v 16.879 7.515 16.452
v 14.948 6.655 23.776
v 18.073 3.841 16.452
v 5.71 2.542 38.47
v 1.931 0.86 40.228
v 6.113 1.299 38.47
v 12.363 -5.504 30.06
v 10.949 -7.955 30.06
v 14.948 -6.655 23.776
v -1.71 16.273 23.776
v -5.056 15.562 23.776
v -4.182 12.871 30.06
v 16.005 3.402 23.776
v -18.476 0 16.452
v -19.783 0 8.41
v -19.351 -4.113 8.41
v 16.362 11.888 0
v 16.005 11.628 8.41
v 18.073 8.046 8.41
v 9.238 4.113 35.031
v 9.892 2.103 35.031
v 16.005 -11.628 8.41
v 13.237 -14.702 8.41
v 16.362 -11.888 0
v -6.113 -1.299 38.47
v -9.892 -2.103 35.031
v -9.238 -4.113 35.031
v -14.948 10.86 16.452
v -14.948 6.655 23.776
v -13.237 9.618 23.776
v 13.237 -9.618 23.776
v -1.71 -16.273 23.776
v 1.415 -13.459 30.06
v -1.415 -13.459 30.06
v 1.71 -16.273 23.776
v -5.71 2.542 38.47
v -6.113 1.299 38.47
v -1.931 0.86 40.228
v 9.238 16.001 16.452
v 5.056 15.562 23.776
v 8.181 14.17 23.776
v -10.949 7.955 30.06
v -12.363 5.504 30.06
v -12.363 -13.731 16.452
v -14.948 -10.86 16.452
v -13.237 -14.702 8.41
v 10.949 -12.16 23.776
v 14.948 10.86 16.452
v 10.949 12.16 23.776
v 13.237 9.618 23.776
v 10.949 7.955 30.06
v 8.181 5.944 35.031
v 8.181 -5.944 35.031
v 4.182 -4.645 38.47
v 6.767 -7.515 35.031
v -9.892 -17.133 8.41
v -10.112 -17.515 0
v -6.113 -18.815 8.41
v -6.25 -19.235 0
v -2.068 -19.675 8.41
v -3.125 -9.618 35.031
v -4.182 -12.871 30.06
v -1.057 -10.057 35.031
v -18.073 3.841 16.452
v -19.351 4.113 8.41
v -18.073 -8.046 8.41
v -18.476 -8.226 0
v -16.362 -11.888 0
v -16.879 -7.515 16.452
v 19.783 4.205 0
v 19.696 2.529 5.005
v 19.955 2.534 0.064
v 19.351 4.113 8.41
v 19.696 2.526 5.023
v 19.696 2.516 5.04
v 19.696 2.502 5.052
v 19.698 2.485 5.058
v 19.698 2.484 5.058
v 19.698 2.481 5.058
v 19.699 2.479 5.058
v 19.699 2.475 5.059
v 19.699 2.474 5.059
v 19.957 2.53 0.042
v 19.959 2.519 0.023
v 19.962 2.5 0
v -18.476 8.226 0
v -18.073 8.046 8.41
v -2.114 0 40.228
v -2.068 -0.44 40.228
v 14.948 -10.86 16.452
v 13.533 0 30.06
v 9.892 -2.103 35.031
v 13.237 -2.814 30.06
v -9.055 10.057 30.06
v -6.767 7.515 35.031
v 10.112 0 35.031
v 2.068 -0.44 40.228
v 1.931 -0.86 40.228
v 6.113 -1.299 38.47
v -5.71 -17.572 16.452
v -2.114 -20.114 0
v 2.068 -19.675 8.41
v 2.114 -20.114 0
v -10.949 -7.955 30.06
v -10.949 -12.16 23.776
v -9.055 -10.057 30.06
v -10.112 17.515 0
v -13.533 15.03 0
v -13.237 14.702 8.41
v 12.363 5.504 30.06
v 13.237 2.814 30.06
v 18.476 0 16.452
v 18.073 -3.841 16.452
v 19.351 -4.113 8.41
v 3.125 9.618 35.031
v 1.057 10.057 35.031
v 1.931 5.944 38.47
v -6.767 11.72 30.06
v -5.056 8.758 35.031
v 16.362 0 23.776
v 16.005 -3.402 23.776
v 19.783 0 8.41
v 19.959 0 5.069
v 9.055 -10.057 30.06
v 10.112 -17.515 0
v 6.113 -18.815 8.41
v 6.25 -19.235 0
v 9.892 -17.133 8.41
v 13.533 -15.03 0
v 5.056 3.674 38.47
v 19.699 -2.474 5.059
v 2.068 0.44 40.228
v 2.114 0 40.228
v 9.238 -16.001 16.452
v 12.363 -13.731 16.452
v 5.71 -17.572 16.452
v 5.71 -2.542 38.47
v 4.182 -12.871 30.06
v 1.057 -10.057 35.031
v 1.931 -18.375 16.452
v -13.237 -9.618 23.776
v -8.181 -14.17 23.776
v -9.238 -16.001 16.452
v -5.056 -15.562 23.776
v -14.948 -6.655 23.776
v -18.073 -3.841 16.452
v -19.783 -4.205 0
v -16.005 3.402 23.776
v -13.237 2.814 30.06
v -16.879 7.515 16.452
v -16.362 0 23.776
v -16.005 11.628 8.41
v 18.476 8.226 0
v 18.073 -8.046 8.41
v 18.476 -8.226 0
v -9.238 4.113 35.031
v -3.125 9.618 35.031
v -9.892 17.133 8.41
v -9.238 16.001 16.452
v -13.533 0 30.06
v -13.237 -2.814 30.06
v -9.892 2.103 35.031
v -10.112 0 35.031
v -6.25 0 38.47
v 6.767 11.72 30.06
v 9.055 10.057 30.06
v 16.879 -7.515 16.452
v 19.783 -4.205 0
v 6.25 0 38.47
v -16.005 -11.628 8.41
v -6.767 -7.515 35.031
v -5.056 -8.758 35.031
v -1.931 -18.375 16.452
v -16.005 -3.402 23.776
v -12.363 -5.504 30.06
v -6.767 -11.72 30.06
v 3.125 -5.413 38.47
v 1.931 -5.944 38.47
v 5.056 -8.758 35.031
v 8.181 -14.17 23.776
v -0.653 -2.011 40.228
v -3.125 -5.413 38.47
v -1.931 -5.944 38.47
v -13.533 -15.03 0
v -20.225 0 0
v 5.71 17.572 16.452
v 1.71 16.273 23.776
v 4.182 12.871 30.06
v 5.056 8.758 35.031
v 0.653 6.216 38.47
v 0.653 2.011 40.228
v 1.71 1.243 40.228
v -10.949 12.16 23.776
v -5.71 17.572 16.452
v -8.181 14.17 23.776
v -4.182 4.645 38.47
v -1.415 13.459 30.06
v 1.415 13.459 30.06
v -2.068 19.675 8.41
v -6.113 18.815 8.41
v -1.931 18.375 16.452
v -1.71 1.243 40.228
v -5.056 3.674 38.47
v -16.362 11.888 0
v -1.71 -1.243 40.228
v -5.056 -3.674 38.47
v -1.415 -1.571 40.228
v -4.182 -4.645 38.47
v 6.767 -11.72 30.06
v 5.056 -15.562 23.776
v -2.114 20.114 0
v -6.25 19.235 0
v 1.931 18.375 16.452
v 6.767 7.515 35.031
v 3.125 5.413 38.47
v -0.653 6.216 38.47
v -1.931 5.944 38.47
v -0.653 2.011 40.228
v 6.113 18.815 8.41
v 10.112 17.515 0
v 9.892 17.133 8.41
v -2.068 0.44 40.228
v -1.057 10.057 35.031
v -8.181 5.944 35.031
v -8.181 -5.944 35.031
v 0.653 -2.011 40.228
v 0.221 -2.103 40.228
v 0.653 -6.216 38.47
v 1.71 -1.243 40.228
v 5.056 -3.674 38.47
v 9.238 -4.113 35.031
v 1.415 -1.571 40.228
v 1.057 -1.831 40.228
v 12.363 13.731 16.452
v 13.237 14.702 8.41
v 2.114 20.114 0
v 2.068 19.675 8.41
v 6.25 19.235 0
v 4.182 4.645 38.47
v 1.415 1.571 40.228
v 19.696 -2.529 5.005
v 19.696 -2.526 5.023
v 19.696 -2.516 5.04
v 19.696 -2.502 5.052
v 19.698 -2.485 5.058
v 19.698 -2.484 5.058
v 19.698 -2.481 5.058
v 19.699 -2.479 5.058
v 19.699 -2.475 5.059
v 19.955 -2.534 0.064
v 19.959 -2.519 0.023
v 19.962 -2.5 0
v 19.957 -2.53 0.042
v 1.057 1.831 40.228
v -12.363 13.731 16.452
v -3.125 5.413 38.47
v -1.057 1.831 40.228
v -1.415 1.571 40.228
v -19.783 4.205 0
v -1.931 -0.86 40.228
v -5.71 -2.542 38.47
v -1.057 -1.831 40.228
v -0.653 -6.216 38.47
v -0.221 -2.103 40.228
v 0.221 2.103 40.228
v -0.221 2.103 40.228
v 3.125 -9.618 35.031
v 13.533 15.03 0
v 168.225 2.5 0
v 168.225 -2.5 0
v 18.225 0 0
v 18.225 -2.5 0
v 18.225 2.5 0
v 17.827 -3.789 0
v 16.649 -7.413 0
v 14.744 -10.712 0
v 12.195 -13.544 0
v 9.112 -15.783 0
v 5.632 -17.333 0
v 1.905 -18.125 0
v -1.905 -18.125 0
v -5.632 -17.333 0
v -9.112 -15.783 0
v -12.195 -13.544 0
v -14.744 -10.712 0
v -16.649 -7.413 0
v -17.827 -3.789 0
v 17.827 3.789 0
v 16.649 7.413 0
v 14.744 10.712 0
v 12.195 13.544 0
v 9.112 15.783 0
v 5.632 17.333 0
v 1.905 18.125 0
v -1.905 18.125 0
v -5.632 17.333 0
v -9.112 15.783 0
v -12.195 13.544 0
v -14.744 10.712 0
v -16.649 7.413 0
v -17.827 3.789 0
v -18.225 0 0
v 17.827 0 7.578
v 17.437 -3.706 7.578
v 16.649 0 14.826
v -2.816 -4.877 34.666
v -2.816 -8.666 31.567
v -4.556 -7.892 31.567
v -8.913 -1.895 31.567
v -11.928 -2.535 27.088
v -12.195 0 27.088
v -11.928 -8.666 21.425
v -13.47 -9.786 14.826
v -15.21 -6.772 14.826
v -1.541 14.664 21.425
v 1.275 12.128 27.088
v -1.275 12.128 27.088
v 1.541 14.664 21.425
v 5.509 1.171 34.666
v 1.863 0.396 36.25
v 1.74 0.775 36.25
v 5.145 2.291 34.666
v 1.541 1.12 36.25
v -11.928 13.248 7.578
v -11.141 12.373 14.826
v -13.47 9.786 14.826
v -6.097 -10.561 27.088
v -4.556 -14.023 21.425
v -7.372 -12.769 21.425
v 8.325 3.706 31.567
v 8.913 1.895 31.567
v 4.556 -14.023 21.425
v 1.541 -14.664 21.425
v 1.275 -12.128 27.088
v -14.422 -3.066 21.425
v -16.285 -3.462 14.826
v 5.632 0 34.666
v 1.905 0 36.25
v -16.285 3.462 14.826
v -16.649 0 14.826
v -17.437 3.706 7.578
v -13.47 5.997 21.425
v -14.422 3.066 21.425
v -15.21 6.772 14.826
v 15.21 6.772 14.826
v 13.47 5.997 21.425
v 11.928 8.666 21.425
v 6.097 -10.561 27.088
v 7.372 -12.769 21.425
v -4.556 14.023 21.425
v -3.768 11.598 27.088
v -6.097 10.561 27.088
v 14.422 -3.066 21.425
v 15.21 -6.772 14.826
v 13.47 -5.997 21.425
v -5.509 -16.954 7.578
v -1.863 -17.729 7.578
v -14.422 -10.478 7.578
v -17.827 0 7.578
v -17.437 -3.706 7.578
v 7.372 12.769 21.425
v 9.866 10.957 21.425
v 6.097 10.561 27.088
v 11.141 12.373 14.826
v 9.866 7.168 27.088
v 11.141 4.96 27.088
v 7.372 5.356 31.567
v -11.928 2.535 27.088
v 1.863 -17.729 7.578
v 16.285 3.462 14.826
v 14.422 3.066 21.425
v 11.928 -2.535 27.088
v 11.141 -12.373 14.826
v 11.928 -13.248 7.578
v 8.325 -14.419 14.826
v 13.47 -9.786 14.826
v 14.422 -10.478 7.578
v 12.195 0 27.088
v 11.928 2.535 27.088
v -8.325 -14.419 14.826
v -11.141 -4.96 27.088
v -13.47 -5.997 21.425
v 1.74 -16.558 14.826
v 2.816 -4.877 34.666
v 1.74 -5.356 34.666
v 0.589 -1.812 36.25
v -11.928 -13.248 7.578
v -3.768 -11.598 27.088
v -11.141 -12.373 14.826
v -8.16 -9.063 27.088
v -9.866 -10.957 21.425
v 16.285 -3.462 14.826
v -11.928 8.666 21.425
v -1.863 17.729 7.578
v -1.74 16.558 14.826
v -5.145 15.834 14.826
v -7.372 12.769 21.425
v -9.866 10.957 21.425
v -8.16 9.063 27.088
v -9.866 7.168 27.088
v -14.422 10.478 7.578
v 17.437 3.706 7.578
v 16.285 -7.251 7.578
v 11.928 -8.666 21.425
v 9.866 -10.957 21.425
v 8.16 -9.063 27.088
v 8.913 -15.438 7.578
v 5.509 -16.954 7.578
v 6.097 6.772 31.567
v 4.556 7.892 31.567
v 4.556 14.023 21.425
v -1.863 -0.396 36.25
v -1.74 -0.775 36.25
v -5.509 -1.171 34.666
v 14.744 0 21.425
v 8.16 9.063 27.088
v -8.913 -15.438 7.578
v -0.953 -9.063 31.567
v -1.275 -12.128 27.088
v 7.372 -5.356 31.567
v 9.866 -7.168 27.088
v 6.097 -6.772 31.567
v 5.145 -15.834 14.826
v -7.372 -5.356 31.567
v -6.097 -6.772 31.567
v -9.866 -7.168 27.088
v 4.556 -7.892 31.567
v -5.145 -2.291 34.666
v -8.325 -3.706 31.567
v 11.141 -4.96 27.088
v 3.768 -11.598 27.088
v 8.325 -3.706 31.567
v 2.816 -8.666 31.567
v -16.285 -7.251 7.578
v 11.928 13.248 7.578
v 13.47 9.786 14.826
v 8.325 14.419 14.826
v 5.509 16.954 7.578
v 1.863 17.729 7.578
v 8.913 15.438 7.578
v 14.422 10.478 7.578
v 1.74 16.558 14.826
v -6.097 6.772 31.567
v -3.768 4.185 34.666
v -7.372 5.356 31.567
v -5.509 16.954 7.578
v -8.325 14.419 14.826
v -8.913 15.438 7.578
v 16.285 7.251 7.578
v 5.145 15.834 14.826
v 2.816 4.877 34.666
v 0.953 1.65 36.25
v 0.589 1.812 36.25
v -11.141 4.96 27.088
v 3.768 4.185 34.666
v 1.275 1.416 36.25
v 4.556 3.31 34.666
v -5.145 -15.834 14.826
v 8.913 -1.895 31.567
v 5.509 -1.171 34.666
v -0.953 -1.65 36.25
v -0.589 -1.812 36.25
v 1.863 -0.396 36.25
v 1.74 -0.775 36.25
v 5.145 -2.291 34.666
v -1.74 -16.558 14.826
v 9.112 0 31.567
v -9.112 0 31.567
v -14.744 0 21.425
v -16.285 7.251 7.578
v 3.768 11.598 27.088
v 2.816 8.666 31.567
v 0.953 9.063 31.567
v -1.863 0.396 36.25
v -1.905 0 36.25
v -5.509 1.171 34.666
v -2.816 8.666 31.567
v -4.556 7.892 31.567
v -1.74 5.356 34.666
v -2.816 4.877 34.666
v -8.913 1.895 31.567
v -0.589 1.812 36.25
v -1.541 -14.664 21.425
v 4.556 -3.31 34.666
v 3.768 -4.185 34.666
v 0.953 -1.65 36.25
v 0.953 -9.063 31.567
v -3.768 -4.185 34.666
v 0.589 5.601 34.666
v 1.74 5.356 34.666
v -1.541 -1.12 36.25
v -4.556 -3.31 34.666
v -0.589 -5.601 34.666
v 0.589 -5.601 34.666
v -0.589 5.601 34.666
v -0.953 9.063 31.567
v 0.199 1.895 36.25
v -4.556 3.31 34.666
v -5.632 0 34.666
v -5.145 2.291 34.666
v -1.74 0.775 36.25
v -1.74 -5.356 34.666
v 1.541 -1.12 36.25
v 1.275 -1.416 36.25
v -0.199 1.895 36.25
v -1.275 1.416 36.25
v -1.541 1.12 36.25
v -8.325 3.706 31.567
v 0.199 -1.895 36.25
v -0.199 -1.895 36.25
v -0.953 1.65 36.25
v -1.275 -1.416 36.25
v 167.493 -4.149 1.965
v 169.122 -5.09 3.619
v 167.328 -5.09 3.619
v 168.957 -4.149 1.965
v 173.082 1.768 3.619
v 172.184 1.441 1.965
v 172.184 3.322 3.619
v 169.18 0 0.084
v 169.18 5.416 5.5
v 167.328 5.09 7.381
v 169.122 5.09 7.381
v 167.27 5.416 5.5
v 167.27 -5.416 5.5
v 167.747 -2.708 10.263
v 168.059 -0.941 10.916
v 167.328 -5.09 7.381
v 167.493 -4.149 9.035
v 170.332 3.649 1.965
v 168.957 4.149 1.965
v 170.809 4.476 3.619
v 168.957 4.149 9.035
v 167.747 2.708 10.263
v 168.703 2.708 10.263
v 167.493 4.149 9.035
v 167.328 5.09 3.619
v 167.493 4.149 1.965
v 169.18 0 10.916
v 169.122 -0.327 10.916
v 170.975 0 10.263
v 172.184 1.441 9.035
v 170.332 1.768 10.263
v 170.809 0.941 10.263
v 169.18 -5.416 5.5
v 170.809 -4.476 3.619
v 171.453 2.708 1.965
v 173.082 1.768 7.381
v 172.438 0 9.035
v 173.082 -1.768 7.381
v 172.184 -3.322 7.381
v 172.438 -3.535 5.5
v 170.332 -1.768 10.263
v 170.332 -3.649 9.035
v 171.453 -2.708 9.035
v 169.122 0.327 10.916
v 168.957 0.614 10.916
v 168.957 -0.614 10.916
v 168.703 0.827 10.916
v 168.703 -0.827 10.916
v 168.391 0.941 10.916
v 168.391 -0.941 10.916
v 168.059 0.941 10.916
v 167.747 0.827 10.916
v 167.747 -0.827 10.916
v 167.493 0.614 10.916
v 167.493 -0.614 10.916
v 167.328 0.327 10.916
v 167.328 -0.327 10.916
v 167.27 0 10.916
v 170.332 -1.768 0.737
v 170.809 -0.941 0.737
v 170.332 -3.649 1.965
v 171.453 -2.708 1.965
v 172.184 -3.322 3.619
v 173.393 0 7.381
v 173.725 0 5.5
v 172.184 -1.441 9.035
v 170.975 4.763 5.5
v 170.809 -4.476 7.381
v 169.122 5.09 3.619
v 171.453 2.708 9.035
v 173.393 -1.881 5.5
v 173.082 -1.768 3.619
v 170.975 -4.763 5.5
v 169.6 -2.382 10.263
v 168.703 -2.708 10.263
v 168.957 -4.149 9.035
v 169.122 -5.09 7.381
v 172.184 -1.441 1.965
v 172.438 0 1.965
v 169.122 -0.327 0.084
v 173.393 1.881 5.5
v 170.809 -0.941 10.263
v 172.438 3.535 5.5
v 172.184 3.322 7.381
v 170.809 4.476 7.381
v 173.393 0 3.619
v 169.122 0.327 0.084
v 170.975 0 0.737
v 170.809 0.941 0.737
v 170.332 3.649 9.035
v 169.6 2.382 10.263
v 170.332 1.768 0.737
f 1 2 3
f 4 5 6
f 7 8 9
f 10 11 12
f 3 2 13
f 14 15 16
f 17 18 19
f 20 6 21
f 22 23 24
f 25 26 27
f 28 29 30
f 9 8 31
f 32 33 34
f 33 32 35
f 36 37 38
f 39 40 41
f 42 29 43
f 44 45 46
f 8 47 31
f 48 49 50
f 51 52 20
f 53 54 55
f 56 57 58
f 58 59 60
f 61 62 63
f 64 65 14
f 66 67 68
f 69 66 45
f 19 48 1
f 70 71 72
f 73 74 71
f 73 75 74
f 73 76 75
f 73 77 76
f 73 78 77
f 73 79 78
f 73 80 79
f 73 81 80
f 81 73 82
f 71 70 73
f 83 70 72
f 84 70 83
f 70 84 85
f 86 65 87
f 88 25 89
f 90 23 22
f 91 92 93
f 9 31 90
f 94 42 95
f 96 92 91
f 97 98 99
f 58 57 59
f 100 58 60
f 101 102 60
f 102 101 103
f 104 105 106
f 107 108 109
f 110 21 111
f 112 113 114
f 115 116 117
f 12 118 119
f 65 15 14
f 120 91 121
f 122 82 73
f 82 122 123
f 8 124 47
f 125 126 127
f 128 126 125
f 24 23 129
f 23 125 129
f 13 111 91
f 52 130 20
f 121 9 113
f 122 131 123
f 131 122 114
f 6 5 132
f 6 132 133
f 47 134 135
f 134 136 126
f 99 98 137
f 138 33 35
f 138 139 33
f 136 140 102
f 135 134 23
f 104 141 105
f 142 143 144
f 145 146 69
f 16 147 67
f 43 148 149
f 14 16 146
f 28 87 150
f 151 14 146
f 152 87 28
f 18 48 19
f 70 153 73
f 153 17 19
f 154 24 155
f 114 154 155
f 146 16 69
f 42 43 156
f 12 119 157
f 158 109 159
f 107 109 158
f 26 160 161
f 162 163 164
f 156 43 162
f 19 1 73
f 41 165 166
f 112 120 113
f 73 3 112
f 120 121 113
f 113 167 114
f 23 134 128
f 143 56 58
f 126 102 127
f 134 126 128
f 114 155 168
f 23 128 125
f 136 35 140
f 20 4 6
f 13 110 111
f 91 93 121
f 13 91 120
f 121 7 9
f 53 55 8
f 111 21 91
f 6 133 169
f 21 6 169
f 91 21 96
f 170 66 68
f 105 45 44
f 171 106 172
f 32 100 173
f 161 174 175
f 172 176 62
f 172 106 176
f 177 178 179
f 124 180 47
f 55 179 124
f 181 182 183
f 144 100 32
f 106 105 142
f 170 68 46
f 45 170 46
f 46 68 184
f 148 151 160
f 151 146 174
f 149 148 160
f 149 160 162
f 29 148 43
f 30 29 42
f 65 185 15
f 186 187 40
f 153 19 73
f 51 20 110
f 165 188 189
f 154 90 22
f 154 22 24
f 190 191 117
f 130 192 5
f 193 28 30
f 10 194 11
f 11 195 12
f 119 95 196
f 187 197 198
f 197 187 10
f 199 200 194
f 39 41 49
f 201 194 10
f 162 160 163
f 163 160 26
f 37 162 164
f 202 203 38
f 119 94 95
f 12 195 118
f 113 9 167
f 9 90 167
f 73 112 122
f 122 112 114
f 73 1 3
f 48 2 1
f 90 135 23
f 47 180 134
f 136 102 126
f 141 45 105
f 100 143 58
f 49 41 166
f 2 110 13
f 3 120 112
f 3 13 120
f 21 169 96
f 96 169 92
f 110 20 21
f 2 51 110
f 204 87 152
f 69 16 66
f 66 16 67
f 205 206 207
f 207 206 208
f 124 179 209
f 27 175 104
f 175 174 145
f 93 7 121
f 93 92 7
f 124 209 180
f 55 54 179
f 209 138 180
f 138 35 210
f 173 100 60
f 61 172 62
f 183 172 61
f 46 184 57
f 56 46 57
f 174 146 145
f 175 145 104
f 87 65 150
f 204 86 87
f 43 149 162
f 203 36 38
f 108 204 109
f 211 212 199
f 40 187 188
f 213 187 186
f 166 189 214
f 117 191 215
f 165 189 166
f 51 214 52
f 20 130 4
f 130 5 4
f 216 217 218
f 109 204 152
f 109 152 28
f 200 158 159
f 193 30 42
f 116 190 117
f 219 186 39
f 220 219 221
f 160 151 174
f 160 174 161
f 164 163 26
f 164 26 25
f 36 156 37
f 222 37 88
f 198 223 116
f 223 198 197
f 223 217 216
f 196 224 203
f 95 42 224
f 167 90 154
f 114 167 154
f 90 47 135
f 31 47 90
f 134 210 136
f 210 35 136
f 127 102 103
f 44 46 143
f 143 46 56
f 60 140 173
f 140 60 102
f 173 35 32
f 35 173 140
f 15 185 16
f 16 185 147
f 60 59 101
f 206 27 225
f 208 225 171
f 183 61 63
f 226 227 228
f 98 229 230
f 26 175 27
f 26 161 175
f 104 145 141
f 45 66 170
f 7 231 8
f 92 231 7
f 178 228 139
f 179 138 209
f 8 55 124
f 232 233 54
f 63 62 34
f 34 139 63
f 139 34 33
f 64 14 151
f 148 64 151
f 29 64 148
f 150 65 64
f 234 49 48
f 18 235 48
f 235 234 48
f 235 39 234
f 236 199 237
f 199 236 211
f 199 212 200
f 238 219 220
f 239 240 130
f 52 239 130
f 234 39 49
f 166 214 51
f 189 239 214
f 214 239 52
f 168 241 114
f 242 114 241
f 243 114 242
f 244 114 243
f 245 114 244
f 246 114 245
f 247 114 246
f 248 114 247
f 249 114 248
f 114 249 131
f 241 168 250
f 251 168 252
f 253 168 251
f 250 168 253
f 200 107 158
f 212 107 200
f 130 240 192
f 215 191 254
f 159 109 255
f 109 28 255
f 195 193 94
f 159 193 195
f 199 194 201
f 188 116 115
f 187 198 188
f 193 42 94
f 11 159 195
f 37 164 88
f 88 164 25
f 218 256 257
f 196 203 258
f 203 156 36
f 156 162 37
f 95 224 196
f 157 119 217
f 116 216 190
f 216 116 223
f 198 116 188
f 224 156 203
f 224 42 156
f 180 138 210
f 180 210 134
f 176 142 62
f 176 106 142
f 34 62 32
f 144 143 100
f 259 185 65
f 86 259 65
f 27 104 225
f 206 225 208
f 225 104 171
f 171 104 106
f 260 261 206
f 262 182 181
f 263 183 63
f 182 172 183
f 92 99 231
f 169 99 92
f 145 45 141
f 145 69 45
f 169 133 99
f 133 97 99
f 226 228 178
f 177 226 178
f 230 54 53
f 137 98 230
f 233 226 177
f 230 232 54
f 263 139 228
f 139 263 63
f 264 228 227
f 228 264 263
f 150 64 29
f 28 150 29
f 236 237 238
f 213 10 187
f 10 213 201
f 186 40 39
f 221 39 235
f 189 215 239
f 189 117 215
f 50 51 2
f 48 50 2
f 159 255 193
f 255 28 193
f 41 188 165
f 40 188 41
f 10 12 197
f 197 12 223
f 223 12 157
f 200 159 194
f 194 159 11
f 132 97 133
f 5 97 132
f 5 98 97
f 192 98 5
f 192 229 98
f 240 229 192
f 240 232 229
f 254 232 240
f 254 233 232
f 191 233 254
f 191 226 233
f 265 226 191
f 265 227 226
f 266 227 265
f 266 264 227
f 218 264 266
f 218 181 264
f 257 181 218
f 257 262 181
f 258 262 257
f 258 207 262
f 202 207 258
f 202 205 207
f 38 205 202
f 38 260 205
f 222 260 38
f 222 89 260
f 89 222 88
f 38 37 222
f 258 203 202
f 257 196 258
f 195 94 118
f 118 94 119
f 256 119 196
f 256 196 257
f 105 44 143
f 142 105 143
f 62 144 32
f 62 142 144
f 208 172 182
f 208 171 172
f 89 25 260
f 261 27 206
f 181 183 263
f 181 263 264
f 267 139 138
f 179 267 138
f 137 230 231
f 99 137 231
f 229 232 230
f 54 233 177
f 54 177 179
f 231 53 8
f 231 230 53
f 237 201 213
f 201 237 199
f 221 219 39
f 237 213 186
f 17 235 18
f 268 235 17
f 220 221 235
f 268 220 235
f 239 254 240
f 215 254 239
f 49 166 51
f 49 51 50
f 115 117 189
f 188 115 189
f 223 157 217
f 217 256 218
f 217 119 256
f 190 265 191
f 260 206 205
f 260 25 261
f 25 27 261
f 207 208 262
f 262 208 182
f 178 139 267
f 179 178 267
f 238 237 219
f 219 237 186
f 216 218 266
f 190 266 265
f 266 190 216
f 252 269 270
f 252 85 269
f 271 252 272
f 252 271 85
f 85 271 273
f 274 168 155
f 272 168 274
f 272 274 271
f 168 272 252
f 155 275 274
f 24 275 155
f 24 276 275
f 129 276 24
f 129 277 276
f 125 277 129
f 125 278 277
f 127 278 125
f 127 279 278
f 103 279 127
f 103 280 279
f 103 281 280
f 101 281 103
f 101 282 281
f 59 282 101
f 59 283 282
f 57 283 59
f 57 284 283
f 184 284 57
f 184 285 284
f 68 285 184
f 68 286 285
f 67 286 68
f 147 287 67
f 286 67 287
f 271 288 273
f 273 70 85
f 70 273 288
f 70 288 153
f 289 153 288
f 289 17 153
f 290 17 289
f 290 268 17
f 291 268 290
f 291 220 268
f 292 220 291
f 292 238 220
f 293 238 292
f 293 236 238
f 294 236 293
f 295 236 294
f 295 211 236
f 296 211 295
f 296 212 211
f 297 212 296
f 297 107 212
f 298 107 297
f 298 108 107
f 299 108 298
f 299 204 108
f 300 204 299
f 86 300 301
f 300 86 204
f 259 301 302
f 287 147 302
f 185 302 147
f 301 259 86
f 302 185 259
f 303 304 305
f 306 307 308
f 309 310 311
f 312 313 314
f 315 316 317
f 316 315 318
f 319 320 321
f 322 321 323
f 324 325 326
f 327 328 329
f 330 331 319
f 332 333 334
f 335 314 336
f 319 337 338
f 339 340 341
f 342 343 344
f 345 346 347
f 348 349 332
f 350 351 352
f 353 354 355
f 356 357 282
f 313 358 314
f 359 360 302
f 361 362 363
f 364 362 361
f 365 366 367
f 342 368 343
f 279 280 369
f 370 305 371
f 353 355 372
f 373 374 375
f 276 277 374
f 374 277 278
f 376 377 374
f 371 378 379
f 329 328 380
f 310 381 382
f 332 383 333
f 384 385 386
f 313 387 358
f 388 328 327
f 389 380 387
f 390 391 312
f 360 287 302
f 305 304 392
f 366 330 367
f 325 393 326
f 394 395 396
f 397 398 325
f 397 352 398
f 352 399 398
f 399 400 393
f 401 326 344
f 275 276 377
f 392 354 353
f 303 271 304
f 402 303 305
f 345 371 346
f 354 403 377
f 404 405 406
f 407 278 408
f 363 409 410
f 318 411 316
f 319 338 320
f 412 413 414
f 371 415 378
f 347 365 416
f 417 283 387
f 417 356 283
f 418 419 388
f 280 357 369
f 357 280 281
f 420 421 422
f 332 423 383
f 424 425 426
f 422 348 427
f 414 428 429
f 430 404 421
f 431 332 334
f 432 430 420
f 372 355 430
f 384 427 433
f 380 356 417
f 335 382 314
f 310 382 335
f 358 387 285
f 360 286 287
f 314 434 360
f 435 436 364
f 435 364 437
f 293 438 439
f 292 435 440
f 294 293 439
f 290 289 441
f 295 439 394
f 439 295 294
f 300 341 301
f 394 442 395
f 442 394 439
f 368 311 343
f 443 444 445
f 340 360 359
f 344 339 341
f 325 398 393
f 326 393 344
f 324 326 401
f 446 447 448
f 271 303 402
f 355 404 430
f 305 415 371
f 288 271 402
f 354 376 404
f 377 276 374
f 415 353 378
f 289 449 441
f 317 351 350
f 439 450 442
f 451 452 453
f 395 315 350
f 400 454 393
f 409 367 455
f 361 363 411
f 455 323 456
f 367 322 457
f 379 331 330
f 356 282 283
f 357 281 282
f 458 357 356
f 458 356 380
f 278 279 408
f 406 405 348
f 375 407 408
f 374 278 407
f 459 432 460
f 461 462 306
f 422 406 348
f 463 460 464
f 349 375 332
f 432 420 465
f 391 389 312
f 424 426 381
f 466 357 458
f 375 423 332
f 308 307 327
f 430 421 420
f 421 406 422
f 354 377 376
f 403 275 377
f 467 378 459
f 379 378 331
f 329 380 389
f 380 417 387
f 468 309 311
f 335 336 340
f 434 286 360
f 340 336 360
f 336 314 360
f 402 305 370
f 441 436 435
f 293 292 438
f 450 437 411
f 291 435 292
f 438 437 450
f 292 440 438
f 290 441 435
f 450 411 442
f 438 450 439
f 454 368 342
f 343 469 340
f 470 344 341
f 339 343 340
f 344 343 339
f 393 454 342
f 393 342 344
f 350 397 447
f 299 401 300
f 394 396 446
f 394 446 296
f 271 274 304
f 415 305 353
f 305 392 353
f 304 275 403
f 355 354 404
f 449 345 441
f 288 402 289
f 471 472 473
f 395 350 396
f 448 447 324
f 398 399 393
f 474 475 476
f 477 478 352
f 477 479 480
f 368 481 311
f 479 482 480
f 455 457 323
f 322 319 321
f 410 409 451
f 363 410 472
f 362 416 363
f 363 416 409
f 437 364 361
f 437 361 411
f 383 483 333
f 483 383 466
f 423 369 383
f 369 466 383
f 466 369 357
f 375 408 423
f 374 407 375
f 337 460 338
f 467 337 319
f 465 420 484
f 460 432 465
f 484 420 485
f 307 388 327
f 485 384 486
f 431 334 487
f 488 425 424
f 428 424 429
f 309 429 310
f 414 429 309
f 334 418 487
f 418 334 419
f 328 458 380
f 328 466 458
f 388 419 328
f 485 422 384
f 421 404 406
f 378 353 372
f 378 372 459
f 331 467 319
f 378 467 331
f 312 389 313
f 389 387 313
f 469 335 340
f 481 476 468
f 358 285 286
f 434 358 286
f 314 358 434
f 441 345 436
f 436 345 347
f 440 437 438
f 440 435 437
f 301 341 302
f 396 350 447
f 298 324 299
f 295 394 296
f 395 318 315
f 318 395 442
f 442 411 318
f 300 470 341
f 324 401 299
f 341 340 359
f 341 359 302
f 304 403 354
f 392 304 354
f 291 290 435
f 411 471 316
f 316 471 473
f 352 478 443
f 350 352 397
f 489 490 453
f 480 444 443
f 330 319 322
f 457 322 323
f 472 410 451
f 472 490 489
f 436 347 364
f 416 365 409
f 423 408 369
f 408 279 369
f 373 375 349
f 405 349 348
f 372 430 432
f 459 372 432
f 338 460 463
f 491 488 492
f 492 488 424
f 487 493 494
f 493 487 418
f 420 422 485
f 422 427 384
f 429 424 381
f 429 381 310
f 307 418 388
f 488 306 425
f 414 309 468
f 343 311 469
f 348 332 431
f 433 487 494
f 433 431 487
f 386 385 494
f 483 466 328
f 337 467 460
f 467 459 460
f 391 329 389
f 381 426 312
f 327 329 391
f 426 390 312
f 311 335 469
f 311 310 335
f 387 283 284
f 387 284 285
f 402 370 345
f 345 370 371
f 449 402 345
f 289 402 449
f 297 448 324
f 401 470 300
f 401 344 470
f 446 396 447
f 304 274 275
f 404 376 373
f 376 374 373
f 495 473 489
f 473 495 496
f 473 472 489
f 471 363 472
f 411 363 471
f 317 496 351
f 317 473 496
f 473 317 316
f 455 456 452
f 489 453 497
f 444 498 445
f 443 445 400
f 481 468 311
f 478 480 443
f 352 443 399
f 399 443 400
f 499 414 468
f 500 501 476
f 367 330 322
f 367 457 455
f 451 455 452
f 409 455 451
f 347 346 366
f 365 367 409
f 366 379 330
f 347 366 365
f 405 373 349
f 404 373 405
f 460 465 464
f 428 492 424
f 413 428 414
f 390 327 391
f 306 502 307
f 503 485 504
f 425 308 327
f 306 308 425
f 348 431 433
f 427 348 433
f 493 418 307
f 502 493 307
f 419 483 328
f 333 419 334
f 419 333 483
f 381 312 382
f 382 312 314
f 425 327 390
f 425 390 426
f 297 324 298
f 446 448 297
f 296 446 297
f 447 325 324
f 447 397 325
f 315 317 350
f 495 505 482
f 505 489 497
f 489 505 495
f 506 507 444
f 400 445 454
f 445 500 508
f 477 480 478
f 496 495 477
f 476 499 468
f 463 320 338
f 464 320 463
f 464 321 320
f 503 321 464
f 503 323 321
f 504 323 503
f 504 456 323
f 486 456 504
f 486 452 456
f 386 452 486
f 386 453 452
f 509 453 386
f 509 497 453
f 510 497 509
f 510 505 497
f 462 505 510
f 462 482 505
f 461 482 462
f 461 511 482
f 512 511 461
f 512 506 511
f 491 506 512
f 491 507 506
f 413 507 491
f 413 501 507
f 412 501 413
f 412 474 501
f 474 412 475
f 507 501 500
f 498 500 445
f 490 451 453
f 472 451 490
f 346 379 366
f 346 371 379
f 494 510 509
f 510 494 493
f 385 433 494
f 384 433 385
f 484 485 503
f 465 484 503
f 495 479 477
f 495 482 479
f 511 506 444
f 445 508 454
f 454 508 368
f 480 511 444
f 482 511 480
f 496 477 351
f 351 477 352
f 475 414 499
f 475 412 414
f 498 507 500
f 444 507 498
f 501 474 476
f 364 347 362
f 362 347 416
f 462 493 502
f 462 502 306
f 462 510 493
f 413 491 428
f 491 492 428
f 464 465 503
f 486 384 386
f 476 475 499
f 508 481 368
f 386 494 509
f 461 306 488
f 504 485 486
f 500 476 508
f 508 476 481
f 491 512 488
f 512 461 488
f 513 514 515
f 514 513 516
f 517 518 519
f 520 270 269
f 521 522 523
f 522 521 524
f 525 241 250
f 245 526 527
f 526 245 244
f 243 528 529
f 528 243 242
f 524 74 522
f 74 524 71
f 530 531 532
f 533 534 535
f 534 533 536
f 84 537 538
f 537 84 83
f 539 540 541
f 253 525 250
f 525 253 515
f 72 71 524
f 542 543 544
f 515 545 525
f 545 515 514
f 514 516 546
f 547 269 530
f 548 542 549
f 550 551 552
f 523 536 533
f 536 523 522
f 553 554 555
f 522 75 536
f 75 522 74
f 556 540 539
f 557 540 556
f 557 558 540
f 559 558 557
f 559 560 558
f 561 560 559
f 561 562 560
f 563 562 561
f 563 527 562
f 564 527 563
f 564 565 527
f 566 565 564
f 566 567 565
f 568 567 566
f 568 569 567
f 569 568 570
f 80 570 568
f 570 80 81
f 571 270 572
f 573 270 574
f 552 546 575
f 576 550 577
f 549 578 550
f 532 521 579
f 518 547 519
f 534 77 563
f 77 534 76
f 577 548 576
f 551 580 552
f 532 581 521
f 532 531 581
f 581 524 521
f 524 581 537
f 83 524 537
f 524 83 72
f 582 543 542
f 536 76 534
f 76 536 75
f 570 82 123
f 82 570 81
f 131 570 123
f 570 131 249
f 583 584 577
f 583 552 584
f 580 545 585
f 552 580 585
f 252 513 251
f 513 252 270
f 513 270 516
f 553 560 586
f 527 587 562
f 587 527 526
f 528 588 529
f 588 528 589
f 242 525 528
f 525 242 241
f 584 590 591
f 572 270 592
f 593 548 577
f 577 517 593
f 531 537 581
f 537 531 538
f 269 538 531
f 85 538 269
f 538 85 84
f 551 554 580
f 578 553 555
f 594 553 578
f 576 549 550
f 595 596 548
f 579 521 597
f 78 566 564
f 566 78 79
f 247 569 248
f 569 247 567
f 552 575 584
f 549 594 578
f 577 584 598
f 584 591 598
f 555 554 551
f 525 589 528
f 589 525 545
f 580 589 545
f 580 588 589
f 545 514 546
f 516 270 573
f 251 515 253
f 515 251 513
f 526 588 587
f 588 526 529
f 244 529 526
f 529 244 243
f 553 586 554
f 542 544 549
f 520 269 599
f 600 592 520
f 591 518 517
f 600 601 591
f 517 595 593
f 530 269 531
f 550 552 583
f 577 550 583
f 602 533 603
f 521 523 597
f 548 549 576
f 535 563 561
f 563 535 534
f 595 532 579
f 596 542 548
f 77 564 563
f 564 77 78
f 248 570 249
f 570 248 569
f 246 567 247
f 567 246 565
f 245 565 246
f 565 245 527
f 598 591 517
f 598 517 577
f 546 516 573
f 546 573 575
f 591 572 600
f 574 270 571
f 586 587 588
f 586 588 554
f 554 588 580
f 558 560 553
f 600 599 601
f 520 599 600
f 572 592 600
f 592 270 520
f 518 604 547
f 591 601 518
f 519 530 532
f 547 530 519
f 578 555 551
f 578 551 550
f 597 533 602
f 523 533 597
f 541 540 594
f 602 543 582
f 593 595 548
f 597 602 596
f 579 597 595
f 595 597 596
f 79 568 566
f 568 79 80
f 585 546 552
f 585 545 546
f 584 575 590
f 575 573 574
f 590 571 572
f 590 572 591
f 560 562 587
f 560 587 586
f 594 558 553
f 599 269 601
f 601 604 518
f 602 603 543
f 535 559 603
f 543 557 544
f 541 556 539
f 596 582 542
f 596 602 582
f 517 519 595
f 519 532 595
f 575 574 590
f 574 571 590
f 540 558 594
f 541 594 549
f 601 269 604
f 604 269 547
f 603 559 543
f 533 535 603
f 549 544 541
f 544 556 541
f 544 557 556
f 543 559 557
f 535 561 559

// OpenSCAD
radius = 24.3;
wall = 2;


//spoon(radius, wall, 1);
//translate([radius *2.2, 0, 0])
spoon(radius/4*3, wall, 2);

module spoon(radius, wall, scale)
{
    difference()
    {
        spoon_half_sphere(radius+wall, scale);
        spoon_half_sphere(radius, scale);
    }

    handle_width = 5;
    handle_length = 150;

    hull() {
    translate([radius, -handle_width/2, 0])
    cube([handle_length, handle_width, handle_width]);

    translate([radius+handle_length, 0, handle_width*1.1])
    sphere(r=handle_width*1.1);
    }
}

module spoon_half_sphere(radius, scale)
{
    scale([1,1,scale])
    difference()
    {
        sphere(r=radius);
        translate([0, 0, -radius/2])
        cube([2*radius, 2*radius, radius], true);
    }
}
